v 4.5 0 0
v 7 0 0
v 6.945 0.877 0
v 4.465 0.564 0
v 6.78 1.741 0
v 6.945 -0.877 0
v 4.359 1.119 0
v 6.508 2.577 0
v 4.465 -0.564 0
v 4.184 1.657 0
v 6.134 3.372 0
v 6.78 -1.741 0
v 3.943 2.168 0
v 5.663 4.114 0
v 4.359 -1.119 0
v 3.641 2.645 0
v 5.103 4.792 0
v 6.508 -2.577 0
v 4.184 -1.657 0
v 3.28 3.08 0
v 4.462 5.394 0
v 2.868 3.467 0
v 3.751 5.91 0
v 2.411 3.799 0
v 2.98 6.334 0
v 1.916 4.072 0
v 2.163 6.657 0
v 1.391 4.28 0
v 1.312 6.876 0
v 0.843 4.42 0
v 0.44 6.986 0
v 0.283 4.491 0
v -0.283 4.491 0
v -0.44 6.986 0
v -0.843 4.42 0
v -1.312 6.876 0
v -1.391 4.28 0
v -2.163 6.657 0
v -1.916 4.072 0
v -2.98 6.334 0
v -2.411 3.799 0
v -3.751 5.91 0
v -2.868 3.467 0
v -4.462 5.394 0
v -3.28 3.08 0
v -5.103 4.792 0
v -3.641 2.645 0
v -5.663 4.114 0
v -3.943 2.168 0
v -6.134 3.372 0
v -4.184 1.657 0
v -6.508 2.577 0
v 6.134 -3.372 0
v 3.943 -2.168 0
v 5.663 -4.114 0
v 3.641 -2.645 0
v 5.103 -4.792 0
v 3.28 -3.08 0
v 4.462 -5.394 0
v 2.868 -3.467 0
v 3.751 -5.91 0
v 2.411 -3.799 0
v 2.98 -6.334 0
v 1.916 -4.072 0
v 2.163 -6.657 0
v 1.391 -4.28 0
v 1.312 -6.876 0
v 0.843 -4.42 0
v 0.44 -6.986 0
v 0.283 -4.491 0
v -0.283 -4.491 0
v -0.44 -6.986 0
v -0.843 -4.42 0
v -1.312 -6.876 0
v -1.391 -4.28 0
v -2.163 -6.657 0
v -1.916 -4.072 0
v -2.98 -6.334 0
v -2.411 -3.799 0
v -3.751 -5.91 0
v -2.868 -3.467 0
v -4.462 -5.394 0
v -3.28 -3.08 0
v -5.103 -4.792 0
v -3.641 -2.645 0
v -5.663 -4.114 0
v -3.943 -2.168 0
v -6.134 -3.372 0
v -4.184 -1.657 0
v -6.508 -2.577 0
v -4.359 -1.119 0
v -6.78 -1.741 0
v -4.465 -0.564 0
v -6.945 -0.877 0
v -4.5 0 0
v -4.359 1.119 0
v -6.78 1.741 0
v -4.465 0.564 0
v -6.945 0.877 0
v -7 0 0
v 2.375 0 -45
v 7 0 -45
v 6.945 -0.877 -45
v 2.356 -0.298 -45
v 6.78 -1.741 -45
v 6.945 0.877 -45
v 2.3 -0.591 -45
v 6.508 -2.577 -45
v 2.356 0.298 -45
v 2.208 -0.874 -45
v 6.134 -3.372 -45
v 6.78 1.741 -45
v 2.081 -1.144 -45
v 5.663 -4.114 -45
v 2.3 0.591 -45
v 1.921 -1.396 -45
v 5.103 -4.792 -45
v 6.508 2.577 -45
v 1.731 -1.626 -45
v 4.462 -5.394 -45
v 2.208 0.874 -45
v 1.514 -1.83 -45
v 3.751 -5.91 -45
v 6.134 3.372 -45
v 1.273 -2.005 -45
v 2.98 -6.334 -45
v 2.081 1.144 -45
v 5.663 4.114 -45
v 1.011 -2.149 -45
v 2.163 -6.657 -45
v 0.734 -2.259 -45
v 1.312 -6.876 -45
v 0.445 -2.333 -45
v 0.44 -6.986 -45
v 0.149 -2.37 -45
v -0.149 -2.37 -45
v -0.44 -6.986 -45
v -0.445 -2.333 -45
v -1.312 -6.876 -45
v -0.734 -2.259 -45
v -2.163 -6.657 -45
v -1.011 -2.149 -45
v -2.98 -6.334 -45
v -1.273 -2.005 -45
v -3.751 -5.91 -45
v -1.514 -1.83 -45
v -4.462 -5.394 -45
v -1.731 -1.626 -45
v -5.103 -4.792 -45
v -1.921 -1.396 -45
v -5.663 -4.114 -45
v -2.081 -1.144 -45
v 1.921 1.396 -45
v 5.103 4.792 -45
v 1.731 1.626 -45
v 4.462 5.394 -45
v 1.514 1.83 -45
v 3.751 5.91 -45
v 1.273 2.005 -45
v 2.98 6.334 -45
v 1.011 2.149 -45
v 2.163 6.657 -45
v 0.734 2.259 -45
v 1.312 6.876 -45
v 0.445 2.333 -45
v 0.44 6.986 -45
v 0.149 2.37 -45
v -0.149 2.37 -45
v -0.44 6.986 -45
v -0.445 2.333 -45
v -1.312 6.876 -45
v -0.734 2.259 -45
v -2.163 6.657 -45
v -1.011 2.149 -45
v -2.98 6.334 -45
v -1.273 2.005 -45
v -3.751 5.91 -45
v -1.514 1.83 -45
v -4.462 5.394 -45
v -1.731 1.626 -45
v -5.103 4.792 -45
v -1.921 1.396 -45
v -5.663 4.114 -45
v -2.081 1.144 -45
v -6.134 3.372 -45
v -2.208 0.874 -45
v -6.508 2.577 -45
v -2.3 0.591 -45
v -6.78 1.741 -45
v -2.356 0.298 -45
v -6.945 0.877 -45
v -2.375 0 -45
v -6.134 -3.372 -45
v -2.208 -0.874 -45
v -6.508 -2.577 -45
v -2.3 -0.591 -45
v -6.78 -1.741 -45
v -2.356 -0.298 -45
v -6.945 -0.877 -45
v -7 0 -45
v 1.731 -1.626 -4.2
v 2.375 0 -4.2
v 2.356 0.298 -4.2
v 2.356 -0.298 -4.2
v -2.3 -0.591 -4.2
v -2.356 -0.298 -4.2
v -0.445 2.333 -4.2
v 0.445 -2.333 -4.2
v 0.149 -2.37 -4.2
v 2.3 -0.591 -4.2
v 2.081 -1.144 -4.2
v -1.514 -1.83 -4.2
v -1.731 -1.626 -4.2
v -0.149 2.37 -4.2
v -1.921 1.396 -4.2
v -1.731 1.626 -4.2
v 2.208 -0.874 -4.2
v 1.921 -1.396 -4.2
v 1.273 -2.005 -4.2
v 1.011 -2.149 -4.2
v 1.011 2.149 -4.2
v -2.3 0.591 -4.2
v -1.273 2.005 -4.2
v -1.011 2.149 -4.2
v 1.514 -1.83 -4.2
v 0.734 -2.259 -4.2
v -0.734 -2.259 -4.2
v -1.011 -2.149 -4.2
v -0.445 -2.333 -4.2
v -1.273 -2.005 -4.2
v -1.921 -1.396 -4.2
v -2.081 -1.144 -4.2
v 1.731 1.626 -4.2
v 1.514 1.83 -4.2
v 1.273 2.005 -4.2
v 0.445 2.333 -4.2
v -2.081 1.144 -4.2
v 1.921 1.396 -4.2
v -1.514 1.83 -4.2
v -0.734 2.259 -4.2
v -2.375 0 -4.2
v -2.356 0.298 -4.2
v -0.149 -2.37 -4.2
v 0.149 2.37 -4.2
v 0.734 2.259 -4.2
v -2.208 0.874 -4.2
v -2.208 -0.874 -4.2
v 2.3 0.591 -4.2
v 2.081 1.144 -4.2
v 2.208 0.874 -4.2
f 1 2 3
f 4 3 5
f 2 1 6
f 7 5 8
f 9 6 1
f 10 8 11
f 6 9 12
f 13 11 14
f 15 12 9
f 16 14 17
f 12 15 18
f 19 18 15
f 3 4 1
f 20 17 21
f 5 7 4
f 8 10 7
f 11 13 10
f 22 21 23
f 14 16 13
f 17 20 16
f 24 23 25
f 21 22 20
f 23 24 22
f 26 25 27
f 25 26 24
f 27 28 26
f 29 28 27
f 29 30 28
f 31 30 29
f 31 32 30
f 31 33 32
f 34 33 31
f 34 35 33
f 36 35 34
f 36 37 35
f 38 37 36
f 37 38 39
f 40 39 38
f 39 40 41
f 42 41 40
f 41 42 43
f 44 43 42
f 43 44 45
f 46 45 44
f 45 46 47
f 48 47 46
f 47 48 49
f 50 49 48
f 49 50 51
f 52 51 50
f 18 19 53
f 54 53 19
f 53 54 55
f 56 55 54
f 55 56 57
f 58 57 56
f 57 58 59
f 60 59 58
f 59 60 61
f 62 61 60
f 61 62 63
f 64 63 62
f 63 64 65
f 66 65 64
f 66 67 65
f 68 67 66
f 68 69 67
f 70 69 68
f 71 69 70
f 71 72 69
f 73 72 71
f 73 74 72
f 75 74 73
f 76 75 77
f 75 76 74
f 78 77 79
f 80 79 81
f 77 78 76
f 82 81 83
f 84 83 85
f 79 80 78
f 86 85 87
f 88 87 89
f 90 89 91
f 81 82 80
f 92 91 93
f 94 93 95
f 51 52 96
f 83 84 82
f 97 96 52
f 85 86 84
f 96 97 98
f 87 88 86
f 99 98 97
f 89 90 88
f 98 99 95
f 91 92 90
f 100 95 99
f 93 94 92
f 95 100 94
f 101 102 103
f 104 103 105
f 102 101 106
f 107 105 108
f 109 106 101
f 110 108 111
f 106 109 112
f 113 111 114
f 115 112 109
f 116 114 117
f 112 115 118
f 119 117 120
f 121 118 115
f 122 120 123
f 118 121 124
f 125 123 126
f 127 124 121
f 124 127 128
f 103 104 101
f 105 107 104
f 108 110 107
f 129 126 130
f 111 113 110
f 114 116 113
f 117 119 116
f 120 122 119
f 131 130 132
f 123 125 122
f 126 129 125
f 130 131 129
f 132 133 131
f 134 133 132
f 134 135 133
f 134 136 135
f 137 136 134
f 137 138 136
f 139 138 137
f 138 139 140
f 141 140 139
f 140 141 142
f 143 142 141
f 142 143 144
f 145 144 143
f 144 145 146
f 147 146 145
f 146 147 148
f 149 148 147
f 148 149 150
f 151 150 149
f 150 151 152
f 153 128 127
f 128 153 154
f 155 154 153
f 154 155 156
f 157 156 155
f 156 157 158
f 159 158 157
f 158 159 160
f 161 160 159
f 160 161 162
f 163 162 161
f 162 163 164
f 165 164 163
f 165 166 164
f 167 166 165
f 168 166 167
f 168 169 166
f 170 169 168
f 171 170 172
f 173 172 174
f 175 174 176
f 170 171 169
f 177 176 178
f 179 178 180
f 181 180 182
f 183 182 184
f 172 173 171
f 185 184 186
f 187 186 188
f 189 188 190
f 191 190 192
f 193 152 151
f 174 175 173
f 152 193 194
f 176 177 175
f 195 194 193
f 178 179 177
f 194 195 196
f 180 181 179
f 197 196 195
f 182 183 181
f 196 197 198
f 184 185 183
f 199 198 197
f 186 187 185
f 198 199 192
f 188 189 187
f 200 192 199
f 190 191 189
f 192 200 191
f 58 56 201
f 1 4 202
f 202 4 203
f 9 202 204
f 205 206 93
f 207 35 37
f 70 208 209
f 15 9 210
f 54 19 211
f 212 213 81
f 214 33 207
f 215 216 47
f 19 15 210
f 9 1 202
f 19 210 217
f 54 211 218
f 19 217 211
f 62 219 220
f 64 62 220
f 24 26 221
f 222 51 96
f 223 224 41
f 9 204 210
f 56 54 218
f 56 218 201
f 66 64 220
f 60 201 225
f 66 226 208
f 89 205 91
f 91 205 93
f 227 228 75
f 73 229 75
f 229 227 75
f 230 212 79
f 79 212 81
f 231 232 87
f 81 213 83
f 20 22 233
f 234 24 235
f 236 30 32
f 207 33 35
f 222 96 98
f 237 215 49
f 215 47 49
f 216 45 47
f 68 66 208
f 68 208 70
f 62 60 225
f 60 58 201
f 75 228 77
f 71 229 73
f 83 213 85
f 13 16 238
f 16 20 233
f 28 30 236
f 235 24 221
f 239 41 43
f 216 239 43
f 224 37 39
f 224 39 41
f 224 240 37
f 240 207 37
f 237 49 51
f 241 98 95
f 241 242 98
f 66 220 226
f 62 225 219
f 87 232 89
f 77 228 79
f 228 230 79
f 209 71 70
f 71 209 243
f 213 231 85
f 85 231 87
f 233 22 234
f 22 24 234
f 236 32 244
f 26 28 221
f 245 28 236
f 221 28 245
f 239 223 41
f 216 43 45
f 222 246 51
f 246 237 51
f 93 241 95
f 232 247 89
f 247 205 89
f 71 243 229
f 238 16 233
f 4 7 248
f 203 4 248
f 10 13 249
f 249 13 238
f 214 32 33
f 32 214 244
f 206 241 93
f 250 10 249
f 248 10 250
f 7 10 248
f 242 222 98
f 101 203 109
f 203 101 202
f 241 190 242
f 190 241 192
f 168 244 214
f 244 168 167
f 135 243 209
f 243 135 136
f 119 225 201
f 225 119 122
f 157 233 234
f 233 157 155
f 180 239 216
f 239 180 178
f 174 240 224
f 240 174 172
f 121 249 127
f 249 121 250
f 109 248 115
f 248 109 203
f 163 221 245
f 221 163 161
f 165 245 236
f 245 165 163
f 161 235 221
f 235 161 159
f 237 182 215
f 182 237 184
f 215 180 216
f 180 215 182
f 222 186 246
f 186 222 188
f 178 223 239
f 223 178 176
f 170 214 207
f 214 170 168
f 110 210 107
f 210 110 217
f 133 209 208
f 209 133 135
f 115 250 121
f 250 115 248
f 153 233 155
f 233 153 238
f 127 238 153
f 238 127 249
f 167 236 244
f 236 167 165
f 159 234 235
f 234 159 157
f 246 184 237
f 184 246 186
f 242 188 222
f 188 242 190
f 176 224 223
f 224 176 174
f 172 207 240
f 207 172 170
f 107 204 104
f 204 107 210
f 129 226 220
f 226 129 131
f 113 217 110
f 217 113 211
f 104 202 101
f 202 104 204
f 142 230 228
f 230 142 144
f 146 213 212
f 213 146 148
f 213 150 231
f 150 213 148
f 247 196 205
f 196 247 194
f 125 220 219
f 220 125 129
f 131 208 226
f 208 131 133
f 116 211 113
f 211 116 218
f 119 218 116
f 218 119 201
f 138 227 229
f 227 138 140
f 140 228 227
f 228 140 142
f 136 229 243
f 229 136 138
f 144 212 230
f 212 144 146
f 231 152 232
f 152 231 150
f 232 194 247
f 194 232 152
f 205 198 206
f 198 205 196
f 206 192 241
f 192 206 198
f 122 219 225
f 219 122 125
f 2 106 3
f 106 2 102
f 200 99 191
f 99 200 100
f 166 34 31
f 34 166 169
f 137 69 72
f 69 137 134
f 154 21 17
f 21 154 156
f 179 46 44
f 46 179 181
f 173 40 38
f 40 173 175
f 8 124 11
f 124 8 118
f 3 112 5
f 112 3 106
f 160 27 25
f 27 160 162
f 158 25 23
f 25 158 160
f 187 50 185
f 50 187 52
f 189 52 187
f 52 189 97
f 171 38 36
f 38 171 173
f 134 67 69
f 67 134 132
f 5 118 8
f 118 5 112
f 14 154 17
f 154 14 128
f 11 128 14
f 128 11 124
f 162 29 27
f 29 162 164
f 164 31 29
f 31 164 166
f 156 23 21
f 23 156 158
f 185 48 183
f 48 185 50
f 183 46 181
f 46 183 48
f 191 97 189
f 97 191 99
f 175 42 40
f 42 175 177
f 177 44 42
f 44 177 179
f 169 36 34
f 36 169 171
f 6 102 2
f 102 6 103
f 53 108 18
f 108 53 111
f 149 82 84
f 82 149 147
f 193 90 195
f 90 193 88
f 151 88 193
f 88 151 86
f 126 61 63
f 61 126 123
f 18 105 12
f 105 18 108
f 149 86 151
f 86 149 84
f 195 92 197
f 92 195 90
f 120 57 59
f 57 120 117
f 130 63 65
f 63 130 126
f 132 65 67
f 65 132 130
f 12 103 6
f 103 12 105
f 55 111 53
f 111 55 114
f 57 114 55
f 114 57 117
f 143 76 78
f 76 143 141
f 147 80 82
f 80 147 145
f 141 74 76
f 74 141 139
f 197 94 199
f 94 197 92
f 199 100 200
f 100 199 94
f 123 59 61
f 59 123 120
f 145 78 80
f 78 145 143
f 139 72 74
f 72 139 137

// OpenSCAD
$fn = 50;


difference() {
	union() {
		translate(v = [0, 0, -45.0000000000]) {
			cylinder(h = 45, r = 7.0000000000);
		}
		cylinder(h = 0, r = 17.0000000000);
	}
	union() {
		translate(v = [0, 0, 0]) {
			rotate(a = [0, 0, 0]) {
				difference() {
					union() {
						#translate(v = [0, 0, -45.0000000000]) {
							cylinder(h = 45, r = 2.2500000000);
						}
						#translate(v = [0, 0, -4.2000000000]) {
							cylinder(h = 4.2000000000, r1 = 2.3750000000, r2 = 4.5000000000);
						}
						#translate(v = [0, 0, -45.0000000000]) {
							cylinder(h = 45, r = 2.3750000000);
						}
						#translate(v = [0, 0, -45.0000000000]) {
							cylinder(h = 45, r = 2.2500000000);
						}
					}
					union();
				}
			}
		}
	}
}
